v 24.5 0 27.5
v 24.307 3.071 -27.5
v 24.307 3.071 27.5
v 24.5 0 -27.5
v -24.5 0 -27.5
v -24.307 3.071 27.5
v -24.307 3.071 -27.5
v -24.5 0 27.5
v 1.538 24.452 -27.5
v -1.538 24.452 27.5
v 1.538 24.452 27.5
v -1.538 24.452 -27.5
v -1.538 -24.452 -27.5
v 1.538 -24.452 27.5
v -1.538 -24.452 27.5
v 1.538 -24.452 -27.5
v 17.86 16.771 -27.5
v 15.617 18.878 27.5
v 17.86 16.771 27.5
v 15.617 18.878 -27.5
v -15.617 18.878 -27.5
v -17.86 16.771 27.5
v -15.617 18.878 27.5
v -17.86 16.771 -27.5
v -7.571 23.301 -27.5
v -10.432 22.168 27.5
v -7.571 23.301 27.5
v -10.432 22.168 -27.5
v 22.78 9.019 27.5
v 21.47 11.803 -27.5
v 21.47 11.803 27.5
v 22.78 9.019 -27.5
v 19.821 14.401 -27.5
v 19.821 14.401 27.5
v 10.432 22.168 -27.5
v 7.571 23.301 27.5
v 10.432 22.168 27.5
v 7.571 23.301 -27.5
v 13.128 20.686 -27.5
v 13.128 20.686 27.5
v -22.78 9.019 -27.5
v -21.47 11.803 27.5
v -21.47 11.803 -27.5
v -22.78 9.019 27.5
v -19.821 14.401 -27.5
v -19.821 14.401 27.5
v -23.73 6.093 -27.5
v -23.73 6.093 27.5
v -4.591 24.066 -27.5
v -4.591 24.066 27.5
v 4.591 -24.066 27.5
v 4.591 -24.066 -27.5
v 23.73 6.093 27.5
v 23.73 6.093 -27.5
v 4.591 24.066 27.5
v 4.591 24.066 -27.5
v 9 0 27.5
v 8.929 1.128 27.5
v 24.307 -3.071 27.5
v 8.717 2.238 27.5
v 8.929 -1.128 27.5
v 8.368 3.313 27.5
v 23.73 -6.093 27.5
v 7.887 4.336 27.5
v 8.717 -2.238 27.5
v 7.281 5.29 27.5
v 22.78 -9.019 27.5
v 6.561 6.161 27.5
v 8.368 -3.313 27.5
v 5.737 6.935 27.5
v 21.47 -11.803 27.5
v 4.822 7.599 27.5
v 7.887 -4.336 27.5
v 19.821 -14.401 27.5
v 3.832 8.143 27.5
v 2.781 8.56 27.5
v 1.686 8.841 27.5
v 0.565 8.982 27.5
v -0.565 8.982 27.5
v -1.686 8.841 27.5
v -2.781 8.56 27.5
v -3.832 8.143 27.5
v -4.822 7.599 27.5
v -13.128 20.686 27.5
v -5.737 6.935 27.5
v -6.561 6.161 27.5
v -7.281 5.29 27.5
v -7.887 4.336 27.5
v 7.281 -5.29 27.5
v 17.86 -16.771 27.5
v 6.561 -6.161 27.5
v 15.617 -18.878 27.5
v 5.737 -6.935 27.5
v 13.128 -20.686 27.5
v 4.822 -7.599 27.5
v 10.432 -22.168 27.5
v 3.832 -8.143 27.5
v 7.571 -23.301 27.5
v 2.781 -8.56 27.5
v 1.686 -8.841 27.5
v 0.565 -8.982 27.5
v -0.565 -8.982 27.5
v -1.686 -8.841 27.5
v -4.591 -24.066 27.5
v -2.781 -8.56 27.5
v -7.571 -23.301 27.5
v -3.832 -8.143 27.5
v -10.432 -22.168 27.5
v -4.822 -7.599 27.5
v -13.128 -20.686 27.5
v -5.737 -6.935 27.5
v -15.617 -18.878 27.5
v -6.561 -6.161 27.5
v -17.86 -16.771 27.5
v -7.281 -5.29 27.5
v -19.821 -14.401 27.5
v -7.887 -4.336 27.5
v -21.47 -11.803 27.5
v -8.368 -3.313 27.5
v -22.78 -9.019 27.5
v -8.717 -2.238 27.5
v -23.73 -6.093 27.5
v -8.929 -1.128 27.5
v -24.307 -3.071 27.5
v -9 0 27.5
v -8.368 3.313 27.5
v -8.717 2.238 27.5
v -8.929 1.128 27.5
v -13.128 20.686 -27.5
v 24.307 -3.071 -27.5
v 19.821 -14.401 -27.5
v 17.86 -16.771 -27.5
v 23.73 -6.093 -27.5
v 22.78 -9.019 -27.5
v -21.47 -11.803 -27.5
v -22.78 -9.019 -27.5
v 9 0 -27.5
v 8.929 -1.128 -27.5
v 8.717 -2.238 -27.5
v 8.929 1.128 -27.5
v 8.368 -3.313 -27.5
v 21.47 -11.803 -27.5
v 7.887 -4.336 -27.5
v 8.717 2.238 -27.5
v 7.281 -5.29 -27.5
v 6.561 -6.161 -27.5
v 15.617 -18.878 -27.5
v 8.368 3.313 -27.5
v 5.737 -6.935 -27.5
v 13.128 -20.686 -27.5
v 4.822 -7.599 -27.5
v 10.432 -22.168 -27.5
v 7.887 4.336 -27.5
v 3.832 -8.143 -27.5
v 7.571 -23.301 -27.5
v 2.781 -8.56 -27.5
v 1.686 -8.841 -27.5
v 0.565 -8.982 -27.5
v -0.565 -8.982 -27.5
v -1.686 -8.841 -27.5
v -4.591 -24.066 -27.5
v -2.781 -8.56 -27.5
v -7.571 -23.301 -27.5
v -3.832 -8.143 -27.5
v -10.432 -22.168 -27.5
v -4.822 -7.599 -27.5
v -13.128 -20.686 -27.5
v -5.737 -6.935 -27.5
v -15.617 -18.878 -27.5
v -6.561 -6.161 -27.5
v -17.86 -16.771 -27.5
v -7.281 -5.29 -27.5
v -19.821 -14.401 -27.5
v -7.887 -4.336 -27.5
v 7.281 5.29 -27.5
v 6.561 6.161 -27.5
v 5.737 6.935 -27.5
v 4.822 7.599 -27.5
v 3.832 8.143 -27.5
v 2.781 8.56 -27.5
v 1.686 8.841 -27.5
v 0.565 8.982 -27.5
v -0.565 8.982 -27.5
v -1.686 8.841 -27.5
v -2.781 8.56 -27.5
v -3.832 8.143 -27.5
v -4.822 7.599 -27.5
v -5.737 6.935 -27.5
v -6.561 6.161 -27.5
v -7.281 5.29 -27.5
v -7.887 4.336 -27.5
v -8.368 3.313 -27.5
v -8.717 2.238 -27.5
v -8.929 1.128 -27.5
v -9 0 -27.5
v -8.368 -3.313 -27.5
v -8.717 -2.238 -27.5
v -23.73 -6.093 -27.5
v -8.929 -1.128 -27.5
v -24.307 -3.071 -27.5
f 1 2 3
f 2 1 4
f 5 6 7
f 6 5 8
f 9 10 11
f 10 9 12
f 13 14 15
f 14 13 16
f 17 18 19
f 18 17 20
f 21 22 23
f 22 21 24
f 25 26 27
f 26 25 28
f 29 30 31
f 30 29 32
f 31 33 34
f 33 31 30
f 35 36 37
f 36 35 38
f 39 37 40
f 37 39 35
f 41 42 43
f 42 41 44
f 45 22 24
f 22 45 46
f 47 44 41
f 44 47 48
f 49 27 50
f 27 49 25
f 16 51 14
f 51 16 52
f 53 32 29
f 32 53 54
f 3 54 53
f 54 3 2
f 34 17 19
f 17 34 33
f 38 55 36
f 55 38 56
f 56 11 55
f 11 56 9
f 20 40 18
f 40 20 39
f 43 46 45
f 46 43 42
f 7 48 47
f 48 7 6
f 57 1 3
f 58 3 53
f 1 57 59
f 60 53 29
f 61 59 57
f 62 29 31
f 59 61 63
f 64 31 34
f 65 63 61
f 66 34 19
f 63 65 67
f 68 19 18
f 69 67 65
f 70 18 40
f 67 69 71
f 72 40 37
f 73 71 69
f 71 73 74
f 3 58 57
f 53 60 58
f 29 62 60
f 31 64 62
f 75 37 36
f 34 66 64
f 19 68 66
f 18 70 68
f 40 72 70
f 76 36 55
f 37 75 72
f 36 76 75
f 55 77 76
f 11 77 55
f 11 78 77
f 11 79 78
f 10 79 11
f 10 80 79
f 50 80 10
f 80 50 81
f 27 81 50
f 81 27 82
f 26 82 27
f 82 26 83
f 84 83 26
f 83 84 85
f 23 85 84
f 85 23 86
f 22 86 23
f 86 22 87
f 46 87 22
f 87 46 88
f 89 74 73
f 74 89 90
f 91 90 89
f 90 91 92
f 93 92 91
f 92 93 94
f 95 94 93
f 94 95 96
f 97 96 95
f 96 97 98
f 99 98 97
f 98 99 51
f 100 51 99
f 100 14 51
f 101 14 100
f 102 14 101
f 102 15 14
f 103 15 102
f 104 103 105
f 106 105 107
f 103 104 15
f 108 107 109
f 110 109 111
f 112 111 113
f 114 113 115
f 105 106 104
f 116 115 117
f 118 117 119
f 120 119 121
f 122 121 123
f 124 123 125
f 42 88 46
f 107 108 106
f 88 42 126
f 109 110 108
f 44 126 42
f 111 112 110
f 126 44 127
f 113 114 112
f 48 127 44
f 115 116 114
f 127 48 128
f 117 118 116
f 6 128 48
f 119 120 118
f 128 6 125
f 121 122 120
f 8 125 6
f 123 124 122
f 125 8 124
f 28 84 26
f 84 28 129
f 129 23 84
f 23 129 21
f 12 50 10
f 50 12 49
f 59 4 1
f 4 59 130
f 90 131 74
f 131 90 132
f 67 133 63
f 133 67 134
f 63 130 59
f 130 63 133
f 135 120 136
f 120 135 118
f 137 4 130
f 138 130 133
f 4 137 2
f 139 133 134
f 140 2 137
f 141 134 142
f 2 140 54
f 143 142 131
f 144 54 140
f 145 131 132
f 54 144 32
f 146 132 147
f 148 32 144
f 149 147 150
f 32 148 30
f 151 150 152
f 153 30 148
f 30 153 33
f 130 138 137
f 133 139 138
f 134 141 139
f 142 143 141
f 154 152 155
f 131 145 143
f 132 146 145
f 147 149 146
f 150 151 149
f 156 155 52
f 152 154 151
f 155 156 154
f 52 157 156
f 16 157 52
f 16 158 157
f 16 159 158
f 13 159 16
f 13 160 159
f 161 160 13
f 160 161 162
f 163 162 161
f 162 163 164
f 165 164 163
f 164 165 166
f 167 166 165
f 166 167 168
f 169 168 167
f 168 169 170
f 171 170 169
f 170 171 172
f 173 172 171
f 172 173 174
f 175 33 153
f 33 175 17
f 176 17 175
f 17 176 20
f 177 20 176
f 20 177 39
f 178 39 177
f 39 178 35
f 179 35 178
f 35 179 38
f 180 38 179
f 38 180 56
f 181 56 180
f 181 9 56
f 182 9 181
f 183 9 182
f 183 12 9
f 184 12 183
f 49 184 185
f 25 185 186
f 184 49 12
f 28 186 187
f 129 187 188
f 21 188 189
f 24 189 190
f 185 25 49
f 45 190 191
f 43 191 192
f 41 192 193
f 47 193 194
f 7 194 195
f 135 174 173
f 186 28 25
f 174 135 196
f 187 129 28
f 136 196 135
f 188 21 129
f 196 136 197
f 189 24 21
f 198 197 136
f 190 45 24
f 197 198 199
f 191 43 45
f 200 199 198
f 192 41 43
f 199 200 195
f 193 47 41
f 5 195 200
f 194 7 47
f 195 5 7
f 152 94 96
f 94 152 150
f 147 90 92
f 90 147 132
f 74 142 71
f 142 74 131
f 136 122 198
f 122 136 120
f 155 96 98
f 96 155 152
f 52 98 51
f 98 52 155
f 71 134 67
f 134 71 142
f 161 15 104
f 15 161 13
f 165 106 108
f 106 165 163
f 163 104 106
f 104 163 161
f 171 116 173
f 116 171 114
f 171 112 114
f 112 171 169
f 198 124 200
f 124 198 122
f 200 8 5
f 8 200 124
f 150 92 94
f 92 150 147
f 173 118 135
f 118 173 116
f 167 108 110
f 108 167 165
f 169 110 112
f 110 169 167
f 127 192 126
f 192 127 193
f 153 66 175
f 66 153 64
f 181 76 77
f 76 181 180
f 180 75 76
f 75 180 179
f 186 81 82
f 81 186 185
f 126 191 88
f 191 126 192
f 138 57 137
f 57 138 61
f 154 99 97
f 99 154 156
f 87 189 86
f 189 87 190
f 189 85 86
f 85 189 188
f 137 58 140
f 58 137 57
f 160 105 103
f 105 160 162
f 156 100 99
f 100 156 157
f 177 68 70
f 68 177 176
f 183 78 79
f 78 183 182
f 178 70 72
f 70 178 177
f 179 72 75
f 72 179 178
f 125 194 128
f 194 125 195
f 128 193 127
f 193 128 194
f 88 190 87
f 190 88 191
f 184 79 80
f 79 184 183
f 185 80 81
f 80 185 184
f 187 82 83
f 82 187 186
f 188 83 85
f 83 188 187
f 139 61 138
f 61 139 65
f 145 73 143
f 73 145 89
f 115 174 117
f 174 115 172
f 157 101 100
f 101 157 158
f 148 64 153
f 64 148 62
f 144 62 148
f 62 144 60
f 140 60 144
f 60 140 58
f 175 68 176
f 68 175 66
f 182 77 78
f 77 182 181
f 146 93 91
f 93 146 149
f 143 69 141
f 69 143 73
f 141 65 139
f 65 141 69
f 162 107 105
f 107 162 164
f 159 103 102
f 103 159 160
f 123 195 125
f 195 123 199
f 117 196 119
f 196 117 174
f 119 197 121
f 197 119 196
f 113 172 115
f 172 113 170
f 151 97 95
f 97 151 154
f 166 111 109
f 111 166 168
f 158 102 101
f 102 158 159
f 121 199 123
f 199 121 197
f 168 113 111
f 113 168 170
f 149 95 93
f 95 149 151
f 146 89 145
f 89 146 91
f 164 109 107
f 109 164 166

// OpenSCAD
$fn = 50;


difference() {
	union() {
		translate(v = [0, 0, -27.5000000000]) {
			cylinder(h = 55, r = 24.5000000000);
		}
	}
	union() {
		translate(v = [0, 0, -100.0000000000]) {
			cylinder(h = 200, r = 9);
		}
	}
}
